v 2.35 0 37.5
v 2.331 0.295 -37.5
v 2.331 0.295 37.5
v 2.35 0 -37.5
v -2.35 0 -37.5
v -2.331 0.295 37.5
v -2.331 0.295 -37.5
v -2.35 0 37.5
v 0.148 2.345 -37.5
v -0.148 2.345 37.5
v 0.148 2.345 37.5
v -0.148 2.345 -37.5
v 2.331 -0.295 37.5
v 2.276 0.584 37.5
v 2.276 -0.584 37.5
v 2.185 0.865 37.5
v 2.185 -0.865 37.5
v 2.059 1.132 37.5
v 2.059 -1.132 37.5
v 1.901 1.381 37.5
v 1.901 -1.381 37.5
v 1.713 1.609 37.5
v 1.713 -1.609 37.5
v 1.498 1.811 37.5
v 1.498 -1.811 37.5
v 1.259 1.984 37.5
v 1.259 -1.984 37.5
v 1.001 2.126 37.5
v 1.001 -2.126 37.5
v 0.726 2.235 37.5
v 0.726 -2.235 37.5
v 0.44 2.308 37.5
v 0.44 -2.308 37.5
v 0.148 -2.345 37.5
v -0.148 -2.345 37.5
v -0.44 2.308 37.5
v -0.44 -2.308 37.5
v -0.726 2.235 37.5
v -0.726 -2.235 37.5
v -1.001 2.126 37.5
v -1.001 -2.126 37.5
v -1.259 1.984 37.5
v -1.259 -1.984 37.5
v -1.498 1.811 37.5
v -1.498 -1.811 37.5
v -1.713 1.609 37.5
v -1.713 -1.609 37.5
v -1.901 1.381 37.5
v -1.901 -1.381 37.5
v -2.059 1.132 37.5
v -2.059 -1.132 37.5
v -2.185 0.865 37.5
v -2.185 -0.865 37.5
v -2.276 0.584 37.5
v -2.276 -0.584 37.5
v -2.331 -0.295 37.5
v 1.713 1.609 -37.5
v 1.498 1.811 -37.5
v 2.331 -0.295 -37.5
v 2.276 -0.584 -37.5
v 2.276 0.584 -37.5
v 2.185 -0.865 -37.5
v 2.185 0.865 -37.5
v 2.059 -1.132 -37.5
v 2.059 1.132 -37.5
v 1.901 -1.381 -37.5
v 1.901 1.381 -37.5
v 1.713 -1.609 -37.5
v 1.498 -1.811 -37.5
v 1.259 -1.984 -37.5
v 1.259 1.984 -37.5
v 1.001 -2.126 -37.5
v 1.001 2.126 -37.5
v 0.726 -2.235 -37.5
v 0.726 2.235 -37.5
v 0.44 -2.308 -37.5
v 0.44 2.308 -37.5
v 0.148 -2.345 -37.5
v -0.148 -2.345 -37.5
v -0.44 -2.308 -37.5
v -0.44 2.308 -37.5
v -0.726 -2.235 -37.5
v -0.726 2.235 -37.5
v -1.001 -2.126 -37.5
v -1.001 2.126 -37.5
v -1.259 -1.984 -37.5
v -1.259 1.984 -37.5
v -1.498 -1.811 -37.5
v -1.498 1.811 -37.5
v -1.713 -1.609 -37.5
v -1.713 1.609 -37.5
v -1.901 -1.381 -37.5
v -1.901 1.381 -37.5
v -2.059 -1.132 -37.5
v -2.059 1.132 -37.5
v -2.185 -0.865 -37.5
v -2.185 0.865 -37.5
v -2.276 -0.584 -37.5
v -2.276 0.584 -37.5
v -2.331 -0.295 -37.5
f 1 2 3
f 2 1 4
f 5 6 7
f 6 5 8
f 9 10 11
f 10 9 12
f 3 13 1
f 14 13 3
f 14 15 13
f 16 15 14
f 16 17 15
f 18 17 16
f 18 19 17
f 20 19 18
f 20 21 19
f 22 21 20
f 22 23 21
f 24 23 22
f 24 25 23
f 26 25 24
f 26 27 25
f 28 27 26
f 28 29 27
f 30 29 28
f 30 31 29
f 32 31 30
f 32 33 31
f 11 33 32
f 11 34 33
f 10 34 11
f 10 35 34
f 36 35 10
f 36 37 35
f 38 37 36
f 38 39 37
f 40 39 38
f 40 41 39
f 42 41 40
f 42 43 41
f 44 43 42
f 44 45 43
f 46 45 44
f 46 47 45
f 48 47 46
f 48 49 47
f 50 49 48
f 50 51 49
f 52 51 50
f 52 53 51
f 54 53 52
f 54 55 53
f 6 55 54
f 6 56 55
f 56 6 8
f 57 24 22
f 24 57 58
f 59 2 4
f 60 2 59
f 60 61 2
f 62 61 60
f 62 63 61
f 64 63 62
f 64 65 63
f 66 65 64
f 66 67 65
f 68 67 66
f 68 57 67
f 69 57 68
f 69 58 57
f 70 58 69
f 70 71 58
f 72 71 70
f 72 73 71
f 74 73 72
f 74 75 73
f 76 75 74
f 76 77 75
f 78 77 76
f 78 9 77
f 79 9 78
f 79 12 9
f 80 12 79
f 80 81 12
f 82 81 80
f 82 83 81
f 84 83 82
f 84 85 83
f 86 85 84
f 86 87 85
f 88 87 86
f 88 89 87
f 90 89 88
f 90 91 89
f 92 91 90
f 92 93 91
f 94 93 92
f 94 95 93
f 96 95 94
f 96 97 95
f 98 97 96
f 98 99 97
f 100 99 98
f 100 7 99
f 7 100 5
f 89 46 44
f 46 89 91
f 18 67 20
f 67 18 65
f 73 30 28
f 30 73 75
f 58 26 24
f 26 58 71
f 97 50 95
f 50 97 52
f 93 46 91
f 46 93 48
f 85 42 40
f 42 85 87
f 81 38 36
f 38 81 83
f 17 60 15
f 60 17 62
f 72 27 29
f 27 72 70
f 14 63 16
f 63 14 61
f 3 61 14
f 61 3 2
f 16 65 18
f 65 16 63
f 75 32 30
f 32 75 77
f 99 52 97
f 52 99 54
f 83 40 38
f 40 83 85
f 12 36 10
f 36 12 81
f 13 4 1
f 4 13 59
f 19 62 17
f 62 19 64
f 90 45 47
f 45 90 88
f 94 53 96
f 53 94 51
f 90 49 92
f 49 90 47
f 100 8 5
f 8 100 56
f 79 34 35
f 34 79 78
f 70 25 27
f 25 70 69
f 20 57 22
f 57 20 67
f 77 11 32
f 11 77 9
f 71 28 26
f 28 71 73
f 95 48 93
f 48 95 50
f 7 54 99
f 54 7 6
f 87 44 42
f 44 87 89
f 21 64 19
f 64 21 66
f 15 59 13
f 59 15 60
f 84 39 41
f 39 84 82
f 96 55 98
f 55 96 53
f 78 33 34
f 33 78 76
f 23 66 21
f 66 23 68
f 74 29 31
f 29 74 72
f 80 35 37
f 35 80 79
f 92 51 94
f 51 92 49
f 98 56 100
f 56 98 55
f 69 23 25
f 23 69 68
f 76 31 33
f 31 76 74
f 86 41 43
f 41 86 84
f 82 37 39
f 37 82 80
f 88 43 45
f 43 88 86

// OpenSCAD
$fn = 50;


difference() {
	union() {
		translate(v = [0, 0, -37.5000000000]) {
			cylinder(h = 75, r = 2.3500000000);
		}
	}
	union() {
		translate(v = [0, 0, -100.0000000000]) {
			cylinder(h = 200, r = 0);
		}
	}
}
